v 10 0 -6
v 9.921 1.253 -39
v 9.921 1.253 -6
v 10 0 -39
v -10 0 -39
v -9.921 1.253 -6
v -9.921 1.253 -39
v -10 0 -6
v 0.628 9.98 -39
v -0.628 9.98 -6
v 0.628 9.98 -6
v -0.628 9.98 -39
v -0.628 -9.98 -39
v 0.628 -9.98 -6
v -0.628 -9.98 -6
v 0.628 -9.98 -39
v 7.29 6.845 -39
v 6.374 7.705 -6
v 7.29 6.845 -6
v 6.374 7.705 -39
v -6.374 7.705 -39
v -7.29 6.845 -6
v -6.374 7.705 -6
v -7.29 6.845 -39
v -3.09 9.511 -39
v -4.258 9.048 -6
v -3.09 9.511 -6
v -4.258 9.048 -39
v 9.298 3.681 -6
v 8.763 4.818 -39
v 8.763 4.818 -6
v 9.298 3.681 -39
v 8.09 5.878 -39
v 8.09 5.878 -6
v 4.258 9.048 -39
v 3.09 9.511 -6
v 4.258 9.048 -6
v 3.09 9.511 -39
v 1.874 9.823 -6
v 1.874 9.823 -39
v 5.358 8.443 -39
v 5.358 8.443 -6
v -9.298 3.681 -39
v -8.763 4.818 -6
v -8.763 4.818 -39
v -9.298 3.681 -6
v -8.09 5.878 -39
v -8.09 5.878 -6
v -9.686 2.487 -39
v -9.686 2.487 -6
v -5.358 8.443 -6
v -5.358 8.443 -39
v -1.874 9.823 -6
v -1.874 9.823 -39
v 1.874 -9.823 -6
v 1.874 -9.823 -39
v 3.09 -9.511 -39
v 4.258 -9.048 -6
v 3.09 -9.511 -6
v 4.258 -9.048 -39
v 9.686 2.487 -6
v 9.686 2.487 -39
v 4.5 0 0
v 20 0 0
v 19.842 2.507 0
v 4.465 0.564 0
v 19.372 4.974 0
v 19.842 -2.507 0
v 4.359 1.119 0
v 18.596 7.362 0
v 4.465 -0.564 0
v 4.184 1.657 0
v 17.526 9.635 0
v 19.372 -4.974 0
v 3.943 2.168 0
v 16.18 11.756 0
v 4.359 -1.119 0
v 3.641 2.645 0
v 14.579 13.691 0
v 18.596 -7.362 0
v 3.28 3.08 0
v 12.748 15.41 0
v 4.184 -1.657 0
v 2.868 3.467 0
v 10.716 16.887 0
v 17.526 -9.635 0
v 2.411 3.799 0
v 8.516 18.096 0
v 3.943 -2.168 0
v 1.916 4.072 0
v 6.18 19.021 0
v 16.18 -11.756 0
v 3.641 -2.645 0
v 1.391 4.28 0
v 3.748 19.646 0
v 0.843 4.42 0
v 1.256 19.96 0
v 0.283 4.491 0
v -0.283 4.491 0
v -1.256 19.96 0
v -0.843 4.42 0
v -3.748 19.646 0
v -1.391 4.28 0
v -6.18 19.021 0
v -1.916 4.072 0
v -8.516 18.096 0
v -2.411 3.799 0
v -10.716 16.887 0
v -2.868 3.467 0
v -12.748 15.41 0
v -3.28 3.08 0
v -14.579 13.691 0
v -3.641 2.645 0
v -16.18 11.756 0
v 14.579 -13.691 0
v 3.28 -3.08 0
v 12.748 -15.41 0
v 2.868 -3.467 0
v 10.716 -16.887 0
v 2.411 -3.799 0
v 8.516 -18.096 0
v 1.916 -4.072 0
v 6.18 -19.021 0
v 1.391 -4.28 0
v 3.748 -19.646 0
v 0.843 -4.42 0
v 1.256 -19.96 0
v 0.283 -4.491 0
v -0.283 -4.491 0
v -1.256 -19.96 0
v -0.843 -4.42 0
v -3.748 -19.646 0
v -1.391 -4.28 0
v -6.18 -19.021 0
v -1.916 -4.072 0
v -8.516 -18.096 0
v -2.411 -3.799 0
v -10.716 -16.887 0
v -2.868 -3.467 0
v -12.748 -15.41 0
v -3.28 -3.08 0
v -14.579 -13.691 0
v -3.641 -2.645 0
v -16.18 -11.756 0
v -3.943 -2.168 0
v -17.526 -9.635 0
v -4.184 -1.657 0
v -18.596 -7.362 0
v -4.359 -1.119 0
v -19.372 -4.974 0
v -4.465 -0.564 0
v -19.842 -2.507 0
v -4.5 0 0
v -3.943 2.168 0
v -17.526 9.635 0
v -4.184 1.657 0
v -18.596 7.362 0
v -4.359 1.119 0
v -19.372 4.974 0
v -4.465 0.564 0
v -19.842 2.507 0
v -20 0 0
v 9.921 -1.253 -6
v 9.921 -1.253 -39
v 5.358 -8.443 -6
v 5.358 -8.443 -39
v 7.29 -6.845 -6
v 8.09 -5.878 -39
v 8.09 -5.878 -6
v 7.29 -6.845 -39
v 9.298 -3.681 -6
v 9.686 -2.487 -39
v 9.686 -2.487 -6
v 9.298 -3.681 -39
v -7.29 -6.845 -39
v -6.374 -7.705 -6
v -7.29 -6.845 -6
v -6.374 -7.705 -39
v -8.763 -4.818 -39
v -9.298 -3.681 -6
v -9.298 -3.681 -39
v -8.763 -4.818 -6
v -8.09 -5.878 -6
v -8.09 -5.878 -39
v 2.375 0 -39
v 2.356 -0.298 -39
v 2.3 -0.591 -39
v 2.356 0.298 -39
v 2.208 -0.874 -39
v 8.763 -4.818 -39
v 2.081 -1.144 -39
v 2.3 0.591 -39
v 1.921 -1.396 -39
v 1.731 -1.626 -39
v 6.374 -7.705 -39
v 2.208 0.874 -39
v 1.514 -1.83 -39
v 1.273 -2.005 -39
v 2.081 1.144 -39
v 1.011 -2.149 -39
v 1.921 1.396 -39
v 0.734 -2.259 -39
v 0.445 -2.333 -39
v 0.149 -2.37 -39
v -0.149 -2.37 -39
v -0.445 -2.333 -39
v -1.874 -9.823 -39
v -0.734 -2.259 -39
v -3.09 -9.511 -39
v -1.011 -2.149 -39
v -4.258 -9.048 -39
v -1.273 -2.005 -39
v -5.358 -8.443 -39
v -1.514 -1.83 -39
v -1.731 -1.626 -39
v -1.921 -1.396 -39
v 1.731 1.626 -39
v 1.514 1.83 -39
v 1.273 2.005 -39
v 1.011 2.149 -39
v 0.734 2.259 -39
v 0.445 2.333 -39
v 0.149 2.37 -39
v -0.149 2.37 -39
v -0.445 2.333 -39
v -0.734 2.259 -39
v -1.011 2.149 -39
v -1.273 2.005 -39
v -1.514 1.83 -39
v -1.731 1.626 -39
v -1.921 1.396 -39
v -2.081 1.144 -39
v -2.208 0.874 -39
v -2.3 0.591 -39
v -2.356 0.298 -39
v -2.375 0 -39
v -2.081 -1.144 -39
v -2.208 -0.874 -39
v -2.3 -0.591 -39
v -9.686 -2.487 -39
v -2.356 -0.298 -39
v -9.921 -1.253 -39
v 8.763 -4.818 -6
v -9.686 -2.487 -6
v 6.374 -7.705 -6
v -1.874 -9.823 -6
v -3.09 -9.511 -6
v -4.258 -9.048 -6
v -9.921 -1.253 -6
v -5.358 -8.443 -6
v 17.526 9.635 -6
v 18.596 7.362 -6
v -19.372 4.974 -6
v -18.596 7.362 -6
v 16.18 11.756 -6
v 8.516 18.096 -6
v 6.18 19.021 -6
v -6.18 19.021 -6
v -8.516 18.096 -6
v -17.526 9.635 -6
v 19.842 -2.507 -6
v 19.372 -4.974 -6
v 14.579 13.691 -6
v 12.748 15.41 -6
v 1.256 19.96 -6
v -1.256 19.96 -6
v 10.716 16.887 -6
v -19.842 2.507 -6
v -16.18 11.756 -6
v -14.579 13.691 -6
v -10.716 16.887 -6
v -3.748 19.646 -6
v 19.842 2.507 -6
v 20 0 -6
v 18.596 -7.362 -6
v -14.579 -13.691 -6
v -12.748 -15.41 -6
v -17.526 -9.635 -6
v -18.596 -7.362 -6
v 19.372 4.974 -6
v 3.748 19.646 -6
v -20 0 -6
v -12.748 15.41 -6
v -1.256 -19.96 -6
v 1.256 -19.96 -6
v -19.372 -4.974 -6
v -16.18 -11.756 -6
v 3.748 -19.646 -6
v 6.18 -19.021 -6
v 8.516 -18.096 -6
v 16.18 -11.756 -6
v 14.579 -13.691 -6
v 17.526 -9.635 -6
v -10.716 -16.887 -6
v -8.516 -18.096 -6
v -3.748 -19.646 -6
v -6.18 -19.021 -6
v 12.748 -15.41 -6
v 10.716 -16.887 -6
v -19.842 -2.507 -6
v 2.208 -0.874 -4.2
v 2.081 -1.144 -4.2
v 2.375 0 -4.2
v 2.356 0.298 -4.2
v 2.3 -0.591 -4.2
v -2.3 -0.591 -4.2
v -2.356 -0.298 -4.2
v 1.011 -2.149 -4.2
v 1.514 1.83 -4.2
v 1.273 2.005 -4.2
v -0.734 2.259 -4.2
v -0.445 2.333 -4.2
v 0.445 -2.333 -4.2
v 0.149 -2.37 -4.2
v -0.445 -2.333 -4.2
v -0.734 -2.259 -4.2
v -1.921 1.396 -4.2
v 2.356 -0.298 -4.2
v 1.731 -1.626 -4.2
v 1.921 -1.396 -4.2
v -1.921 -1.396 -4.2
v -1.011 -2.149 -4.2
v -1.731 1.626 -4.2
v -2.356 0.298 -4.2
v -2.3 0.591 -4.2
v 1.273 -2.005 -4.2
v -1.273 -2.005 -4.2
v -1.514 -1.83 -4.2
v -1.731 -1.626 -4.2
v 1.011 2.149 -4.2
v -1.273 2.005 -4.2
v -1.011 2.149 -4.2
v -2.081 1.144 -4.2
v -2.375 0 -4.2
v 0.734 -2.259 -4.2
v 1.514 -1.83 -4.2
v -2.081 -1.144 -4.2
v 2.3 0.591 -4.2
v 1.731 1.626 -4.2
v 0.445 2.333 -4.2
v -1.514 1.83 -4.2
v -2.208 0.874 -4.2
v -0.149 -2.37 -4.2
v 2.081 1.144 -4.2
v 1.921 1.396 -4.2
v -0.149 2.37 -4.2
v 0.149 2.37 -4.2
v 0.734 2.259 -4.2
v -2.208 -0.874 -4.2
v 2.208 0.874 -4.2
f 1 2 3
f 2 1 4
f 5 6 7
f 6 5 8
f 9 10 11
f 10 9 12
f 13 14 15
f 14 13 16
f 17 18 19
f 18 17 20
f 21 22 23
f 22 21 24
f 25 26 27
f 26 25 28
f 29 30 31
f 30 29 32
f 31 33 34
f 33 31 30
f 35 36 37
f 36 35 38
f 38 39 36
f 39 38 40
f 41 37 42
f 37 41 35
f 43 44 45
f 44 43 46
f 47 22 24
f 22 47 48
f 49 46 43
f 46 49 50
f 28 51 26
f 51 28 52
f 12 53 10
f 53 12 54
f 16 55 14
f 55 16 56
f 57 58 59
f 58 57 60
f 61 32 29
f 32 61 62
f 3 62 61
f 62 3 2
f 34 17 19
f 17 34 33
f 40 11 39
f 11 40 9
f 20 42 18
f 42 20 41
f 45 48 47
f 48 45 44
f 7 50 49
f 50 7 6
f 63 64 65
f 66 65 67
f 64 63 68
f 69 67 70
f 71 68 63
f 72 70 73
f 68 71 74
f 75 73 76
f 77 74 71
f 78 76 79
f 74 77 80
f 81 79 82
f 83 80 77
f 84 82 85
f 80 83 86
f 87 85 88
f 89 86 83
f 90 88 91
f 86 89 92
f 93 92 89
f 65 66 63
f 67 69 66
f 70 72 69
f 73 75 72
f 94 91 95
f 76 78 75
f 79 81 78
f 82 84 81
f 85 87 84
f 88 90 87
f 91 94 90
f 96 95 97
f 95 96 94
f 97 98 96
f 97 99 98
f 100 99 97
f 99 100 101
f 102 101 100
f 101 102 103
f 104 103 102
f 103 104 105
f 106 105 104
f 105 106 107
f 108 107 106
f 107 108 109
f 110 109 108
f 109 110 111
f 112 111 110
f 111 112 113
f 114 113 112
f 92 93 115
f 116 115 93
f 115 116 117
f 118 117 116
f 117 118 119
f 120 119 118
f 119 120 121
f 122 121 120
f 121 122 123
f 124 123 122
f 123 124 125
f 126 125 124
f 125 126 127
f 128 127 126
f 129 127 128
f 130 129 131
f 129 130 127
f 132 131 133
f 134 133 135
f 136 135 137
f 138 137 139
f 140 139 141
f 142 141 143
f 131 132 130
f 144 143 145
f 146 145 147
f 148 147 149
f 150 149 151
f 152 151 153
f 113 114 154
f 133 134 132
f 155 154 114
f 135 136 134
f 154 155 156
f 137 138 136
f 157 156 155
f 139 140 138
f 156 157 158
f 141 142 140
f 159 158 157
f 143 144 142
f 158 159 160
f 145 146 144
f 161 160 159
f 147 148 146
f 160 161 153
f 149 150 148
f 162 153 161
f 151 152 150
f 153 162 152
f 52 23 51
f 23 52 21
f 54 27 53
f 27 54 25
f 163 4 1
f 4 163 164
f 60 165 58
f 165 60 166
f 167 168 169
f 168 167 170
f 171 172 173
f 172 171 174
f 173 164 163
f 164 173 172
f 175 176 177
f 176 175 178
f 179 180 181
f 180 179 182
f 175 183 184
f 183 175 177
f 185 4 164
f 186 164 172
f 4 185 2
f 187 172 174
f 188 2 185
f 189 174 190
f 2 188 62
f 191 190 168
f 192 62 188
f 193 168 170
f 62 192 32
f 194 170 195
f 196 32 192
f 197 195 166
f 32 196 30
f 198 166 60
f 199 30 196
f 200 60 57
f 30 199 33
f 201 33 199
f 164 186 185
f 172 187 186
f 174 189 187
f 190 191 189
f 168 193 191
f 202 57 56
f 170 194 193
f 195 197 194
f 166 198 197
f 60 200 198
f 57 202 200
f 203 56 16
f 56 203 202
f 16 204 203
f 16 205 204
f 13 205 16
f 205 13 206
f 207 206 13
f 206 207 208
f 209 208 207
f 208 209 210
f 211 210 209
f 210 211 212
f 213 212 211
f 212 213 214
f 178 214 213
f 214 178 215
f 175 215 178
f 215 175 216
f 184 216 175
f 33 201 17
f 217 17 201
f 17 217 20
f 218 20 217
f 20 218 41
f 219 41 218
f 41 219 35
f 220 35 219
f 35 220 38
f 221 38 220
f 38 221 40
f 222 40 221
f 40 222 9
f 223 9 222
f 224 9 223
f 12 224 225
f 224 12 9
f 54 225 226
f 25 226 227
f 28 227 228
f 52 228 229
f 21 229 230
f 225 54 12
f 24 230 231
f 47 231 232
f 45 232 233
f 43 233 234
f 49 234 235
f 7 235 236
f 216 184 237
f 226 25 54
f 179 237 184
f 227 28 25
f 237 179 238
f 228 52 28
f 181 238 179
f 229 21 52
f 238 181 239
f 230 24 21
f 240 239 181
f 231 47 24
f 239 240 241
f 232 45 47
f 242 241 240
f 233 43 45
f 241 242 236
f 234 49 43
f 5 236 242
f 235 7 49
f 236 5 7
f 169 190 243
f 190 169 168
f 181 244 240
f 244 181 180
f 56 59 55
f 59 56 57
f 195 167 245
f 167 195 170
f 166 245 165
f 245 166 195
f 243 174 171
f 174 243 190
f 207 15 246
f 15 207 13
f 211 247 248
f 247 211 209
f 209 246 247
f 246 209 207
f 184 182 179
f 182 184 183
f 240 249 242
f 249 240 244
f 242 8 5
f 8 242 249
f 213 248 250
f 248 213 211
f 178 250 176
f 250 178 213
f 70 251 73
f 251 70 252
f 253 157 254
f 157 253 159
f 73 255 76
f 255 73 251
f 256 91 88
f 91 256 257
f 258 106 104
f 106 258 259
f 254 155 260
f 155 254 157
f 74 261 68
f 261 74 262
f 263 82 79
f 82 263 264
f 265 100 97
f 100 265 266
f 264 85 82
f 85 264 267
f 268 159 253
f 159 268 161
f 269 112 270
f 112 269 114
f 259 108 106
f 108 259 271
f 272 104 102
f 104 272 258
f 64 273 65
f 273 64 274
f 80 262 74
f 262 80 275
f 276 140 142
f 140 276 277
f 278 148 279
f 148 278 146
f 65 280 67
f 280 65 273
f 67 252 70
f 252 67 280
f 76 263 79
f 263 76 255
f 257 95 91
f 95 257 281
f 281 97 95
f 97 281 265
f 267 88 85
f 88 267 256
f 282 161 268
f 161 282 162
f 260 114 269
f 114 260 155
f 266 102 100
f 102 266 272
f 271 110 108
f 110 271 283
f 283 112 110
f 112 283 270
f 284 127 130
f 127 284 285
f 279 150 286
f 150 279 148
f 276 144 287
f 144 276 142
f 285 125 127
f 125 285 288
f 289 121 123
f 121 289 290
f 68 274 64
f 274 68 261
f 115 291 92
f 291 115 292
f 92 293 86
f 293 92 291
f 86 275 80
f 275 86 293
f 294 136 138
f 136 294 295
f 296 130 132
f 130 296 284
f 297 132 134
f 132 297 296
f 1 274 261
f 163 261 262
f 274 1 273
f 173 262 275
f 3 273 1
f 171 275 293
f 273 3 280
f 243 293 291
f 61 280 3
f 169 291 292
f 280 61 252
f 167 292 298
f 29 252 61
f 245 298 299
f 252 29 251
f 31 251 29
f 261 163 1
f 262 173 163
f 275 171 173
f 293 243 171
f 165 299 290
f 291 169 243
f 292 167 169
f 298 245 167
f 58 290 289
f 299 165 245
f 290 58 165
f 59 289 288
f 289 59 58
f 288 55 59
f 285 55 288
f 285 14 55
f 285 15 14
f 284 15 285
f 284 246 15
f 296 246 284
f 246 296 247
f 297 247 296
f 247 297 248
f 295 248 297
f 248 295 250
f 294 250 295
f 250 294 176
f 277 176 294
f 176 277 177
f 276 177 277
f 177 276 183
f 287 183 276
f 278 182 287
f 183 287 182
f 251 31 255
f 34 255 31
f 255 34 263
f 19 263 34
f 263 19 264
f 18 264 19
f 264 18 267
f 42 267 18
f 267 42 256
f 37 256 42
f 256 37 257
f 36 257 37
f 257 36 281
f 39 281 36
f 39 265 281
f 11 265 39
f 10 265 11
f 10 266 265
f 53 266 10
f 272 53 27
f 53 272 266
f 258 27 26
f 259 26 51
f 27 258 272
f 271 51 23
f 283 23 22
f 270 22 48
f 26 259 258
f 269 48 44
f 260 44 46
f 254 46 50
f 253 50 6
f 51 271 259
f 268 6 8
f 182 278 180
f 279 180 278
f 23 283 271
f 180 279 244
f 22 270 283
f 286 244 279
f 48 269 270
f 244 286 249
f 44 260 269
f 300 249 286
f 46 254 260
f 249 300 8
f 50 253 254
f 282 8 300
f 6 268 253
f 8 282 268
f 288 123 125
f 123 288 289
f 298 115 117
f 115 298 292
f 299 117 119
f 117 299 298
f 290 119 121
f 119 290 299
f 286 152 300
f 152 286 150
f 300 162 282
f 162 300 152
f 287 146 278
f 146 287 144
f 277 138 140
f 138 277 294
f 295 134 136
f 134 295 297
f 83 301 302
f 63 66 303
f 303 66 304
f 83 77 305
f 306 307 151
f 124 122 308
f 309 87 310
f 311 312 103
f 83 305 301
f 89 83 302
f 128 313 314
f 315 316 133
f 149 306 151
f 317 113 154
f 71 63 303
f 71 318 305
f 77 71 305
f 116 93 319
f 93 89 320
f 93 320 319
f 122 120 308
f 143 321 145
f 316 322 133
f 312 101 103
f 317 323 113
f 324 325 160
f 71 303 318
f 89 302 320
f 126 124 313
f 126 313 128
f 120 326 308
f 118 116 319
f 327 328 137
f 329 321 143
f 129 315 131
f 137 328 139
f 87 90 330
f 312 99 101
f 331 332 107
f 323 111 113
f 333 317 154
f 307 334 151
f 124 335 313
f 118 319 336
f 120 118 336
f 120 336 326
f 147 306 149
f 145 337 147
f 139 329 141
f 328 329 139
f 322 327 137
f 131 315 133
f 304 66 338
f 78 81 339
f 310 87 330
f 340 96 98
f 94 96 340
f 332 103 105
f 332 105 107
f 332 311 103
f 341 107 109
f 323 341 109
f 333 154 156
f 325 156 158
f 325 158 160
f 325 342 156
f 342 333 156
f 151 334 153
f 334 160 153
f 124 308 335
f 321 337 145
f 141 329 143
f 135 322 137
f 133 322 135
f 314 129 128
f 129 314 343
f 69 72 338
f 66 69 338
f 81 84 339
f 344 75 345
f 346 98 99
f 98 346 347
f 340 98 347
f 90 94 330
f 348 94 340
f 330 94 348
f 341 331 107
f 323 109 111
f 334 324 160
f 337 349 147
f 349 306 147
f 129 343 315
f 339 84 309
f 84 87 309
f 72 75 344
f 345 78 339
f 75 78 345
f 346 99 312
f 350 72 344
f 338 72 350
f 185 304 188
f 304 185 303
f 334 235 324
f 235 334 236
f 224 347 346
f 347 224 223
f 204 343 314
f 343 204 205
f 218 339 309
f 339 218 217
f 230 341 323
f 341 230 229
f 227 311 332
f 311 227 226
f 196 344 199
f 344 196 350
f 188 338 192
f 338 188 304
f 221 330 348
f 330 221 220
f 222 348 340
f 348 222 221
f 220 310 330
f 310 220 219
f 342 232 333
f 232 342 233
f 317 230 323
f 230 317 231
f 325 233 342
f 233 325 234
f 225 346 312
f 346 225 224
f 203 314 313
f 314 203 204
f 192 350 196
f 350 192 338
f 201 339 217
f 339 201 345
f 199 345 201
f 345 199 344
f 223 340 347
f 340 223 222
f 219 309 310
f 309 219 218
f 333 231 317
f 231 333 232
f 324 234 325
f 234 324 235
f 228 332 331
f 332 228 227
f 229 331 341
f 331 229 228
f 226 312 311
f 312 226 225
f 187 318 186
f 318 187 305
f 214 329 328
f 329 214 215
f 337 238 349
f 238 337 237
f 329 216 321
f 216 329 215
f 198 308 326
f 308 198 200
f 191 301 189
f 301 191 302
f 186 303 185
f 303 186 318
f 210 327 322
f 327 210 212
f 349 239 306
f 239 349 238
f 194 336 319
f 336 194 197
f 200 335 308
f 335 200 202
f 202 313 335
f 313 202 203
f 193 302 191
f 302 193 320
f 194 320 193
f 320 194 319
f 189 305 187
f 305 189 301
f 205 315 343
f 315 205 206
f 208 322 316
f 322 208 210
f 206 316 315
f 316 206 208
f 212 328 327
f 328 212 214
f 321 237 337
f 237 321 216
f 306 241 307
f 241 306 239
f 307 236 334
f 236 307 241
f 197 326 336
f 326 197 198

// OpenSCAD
$fn = 50;


difference() {
	union() {
		translate(v = [0, 0, -39.0000000000]) {
			cylinder(h = 39, r = 10.0000000000);
		}
		translate(v = [0, 0, -6.0000000000]) {
			cylinder(h = 6, r = 20.0000000000);
		}
	}
	union() {
		translate(v = [0, 0, 0]) {
			rotate(a = [0, 0, 0]) {
				difference() {
					union() {
						#translate(v = [0, 0, -39.0000000000]) {
							cylinder(h = 39, r = 2.2500000000);
						}
						#translate(v = [0, 0, -4.2000000000]) {
							cylinder(h = 4.2000000000, r1 = 2.3750000000, r2 = 4.5000000000);
						}
						#translate(v = [0, 0, -39.0000000000]) {
							cylinder(h = 39, r = 2.3750000000);
						}
						#translate(v = [0, 0, -39.0000000000]) {
							cylinder(h = 39, r = 2.2500000000);
						}
					}
					union();
				}
			}
		}
	}
}
